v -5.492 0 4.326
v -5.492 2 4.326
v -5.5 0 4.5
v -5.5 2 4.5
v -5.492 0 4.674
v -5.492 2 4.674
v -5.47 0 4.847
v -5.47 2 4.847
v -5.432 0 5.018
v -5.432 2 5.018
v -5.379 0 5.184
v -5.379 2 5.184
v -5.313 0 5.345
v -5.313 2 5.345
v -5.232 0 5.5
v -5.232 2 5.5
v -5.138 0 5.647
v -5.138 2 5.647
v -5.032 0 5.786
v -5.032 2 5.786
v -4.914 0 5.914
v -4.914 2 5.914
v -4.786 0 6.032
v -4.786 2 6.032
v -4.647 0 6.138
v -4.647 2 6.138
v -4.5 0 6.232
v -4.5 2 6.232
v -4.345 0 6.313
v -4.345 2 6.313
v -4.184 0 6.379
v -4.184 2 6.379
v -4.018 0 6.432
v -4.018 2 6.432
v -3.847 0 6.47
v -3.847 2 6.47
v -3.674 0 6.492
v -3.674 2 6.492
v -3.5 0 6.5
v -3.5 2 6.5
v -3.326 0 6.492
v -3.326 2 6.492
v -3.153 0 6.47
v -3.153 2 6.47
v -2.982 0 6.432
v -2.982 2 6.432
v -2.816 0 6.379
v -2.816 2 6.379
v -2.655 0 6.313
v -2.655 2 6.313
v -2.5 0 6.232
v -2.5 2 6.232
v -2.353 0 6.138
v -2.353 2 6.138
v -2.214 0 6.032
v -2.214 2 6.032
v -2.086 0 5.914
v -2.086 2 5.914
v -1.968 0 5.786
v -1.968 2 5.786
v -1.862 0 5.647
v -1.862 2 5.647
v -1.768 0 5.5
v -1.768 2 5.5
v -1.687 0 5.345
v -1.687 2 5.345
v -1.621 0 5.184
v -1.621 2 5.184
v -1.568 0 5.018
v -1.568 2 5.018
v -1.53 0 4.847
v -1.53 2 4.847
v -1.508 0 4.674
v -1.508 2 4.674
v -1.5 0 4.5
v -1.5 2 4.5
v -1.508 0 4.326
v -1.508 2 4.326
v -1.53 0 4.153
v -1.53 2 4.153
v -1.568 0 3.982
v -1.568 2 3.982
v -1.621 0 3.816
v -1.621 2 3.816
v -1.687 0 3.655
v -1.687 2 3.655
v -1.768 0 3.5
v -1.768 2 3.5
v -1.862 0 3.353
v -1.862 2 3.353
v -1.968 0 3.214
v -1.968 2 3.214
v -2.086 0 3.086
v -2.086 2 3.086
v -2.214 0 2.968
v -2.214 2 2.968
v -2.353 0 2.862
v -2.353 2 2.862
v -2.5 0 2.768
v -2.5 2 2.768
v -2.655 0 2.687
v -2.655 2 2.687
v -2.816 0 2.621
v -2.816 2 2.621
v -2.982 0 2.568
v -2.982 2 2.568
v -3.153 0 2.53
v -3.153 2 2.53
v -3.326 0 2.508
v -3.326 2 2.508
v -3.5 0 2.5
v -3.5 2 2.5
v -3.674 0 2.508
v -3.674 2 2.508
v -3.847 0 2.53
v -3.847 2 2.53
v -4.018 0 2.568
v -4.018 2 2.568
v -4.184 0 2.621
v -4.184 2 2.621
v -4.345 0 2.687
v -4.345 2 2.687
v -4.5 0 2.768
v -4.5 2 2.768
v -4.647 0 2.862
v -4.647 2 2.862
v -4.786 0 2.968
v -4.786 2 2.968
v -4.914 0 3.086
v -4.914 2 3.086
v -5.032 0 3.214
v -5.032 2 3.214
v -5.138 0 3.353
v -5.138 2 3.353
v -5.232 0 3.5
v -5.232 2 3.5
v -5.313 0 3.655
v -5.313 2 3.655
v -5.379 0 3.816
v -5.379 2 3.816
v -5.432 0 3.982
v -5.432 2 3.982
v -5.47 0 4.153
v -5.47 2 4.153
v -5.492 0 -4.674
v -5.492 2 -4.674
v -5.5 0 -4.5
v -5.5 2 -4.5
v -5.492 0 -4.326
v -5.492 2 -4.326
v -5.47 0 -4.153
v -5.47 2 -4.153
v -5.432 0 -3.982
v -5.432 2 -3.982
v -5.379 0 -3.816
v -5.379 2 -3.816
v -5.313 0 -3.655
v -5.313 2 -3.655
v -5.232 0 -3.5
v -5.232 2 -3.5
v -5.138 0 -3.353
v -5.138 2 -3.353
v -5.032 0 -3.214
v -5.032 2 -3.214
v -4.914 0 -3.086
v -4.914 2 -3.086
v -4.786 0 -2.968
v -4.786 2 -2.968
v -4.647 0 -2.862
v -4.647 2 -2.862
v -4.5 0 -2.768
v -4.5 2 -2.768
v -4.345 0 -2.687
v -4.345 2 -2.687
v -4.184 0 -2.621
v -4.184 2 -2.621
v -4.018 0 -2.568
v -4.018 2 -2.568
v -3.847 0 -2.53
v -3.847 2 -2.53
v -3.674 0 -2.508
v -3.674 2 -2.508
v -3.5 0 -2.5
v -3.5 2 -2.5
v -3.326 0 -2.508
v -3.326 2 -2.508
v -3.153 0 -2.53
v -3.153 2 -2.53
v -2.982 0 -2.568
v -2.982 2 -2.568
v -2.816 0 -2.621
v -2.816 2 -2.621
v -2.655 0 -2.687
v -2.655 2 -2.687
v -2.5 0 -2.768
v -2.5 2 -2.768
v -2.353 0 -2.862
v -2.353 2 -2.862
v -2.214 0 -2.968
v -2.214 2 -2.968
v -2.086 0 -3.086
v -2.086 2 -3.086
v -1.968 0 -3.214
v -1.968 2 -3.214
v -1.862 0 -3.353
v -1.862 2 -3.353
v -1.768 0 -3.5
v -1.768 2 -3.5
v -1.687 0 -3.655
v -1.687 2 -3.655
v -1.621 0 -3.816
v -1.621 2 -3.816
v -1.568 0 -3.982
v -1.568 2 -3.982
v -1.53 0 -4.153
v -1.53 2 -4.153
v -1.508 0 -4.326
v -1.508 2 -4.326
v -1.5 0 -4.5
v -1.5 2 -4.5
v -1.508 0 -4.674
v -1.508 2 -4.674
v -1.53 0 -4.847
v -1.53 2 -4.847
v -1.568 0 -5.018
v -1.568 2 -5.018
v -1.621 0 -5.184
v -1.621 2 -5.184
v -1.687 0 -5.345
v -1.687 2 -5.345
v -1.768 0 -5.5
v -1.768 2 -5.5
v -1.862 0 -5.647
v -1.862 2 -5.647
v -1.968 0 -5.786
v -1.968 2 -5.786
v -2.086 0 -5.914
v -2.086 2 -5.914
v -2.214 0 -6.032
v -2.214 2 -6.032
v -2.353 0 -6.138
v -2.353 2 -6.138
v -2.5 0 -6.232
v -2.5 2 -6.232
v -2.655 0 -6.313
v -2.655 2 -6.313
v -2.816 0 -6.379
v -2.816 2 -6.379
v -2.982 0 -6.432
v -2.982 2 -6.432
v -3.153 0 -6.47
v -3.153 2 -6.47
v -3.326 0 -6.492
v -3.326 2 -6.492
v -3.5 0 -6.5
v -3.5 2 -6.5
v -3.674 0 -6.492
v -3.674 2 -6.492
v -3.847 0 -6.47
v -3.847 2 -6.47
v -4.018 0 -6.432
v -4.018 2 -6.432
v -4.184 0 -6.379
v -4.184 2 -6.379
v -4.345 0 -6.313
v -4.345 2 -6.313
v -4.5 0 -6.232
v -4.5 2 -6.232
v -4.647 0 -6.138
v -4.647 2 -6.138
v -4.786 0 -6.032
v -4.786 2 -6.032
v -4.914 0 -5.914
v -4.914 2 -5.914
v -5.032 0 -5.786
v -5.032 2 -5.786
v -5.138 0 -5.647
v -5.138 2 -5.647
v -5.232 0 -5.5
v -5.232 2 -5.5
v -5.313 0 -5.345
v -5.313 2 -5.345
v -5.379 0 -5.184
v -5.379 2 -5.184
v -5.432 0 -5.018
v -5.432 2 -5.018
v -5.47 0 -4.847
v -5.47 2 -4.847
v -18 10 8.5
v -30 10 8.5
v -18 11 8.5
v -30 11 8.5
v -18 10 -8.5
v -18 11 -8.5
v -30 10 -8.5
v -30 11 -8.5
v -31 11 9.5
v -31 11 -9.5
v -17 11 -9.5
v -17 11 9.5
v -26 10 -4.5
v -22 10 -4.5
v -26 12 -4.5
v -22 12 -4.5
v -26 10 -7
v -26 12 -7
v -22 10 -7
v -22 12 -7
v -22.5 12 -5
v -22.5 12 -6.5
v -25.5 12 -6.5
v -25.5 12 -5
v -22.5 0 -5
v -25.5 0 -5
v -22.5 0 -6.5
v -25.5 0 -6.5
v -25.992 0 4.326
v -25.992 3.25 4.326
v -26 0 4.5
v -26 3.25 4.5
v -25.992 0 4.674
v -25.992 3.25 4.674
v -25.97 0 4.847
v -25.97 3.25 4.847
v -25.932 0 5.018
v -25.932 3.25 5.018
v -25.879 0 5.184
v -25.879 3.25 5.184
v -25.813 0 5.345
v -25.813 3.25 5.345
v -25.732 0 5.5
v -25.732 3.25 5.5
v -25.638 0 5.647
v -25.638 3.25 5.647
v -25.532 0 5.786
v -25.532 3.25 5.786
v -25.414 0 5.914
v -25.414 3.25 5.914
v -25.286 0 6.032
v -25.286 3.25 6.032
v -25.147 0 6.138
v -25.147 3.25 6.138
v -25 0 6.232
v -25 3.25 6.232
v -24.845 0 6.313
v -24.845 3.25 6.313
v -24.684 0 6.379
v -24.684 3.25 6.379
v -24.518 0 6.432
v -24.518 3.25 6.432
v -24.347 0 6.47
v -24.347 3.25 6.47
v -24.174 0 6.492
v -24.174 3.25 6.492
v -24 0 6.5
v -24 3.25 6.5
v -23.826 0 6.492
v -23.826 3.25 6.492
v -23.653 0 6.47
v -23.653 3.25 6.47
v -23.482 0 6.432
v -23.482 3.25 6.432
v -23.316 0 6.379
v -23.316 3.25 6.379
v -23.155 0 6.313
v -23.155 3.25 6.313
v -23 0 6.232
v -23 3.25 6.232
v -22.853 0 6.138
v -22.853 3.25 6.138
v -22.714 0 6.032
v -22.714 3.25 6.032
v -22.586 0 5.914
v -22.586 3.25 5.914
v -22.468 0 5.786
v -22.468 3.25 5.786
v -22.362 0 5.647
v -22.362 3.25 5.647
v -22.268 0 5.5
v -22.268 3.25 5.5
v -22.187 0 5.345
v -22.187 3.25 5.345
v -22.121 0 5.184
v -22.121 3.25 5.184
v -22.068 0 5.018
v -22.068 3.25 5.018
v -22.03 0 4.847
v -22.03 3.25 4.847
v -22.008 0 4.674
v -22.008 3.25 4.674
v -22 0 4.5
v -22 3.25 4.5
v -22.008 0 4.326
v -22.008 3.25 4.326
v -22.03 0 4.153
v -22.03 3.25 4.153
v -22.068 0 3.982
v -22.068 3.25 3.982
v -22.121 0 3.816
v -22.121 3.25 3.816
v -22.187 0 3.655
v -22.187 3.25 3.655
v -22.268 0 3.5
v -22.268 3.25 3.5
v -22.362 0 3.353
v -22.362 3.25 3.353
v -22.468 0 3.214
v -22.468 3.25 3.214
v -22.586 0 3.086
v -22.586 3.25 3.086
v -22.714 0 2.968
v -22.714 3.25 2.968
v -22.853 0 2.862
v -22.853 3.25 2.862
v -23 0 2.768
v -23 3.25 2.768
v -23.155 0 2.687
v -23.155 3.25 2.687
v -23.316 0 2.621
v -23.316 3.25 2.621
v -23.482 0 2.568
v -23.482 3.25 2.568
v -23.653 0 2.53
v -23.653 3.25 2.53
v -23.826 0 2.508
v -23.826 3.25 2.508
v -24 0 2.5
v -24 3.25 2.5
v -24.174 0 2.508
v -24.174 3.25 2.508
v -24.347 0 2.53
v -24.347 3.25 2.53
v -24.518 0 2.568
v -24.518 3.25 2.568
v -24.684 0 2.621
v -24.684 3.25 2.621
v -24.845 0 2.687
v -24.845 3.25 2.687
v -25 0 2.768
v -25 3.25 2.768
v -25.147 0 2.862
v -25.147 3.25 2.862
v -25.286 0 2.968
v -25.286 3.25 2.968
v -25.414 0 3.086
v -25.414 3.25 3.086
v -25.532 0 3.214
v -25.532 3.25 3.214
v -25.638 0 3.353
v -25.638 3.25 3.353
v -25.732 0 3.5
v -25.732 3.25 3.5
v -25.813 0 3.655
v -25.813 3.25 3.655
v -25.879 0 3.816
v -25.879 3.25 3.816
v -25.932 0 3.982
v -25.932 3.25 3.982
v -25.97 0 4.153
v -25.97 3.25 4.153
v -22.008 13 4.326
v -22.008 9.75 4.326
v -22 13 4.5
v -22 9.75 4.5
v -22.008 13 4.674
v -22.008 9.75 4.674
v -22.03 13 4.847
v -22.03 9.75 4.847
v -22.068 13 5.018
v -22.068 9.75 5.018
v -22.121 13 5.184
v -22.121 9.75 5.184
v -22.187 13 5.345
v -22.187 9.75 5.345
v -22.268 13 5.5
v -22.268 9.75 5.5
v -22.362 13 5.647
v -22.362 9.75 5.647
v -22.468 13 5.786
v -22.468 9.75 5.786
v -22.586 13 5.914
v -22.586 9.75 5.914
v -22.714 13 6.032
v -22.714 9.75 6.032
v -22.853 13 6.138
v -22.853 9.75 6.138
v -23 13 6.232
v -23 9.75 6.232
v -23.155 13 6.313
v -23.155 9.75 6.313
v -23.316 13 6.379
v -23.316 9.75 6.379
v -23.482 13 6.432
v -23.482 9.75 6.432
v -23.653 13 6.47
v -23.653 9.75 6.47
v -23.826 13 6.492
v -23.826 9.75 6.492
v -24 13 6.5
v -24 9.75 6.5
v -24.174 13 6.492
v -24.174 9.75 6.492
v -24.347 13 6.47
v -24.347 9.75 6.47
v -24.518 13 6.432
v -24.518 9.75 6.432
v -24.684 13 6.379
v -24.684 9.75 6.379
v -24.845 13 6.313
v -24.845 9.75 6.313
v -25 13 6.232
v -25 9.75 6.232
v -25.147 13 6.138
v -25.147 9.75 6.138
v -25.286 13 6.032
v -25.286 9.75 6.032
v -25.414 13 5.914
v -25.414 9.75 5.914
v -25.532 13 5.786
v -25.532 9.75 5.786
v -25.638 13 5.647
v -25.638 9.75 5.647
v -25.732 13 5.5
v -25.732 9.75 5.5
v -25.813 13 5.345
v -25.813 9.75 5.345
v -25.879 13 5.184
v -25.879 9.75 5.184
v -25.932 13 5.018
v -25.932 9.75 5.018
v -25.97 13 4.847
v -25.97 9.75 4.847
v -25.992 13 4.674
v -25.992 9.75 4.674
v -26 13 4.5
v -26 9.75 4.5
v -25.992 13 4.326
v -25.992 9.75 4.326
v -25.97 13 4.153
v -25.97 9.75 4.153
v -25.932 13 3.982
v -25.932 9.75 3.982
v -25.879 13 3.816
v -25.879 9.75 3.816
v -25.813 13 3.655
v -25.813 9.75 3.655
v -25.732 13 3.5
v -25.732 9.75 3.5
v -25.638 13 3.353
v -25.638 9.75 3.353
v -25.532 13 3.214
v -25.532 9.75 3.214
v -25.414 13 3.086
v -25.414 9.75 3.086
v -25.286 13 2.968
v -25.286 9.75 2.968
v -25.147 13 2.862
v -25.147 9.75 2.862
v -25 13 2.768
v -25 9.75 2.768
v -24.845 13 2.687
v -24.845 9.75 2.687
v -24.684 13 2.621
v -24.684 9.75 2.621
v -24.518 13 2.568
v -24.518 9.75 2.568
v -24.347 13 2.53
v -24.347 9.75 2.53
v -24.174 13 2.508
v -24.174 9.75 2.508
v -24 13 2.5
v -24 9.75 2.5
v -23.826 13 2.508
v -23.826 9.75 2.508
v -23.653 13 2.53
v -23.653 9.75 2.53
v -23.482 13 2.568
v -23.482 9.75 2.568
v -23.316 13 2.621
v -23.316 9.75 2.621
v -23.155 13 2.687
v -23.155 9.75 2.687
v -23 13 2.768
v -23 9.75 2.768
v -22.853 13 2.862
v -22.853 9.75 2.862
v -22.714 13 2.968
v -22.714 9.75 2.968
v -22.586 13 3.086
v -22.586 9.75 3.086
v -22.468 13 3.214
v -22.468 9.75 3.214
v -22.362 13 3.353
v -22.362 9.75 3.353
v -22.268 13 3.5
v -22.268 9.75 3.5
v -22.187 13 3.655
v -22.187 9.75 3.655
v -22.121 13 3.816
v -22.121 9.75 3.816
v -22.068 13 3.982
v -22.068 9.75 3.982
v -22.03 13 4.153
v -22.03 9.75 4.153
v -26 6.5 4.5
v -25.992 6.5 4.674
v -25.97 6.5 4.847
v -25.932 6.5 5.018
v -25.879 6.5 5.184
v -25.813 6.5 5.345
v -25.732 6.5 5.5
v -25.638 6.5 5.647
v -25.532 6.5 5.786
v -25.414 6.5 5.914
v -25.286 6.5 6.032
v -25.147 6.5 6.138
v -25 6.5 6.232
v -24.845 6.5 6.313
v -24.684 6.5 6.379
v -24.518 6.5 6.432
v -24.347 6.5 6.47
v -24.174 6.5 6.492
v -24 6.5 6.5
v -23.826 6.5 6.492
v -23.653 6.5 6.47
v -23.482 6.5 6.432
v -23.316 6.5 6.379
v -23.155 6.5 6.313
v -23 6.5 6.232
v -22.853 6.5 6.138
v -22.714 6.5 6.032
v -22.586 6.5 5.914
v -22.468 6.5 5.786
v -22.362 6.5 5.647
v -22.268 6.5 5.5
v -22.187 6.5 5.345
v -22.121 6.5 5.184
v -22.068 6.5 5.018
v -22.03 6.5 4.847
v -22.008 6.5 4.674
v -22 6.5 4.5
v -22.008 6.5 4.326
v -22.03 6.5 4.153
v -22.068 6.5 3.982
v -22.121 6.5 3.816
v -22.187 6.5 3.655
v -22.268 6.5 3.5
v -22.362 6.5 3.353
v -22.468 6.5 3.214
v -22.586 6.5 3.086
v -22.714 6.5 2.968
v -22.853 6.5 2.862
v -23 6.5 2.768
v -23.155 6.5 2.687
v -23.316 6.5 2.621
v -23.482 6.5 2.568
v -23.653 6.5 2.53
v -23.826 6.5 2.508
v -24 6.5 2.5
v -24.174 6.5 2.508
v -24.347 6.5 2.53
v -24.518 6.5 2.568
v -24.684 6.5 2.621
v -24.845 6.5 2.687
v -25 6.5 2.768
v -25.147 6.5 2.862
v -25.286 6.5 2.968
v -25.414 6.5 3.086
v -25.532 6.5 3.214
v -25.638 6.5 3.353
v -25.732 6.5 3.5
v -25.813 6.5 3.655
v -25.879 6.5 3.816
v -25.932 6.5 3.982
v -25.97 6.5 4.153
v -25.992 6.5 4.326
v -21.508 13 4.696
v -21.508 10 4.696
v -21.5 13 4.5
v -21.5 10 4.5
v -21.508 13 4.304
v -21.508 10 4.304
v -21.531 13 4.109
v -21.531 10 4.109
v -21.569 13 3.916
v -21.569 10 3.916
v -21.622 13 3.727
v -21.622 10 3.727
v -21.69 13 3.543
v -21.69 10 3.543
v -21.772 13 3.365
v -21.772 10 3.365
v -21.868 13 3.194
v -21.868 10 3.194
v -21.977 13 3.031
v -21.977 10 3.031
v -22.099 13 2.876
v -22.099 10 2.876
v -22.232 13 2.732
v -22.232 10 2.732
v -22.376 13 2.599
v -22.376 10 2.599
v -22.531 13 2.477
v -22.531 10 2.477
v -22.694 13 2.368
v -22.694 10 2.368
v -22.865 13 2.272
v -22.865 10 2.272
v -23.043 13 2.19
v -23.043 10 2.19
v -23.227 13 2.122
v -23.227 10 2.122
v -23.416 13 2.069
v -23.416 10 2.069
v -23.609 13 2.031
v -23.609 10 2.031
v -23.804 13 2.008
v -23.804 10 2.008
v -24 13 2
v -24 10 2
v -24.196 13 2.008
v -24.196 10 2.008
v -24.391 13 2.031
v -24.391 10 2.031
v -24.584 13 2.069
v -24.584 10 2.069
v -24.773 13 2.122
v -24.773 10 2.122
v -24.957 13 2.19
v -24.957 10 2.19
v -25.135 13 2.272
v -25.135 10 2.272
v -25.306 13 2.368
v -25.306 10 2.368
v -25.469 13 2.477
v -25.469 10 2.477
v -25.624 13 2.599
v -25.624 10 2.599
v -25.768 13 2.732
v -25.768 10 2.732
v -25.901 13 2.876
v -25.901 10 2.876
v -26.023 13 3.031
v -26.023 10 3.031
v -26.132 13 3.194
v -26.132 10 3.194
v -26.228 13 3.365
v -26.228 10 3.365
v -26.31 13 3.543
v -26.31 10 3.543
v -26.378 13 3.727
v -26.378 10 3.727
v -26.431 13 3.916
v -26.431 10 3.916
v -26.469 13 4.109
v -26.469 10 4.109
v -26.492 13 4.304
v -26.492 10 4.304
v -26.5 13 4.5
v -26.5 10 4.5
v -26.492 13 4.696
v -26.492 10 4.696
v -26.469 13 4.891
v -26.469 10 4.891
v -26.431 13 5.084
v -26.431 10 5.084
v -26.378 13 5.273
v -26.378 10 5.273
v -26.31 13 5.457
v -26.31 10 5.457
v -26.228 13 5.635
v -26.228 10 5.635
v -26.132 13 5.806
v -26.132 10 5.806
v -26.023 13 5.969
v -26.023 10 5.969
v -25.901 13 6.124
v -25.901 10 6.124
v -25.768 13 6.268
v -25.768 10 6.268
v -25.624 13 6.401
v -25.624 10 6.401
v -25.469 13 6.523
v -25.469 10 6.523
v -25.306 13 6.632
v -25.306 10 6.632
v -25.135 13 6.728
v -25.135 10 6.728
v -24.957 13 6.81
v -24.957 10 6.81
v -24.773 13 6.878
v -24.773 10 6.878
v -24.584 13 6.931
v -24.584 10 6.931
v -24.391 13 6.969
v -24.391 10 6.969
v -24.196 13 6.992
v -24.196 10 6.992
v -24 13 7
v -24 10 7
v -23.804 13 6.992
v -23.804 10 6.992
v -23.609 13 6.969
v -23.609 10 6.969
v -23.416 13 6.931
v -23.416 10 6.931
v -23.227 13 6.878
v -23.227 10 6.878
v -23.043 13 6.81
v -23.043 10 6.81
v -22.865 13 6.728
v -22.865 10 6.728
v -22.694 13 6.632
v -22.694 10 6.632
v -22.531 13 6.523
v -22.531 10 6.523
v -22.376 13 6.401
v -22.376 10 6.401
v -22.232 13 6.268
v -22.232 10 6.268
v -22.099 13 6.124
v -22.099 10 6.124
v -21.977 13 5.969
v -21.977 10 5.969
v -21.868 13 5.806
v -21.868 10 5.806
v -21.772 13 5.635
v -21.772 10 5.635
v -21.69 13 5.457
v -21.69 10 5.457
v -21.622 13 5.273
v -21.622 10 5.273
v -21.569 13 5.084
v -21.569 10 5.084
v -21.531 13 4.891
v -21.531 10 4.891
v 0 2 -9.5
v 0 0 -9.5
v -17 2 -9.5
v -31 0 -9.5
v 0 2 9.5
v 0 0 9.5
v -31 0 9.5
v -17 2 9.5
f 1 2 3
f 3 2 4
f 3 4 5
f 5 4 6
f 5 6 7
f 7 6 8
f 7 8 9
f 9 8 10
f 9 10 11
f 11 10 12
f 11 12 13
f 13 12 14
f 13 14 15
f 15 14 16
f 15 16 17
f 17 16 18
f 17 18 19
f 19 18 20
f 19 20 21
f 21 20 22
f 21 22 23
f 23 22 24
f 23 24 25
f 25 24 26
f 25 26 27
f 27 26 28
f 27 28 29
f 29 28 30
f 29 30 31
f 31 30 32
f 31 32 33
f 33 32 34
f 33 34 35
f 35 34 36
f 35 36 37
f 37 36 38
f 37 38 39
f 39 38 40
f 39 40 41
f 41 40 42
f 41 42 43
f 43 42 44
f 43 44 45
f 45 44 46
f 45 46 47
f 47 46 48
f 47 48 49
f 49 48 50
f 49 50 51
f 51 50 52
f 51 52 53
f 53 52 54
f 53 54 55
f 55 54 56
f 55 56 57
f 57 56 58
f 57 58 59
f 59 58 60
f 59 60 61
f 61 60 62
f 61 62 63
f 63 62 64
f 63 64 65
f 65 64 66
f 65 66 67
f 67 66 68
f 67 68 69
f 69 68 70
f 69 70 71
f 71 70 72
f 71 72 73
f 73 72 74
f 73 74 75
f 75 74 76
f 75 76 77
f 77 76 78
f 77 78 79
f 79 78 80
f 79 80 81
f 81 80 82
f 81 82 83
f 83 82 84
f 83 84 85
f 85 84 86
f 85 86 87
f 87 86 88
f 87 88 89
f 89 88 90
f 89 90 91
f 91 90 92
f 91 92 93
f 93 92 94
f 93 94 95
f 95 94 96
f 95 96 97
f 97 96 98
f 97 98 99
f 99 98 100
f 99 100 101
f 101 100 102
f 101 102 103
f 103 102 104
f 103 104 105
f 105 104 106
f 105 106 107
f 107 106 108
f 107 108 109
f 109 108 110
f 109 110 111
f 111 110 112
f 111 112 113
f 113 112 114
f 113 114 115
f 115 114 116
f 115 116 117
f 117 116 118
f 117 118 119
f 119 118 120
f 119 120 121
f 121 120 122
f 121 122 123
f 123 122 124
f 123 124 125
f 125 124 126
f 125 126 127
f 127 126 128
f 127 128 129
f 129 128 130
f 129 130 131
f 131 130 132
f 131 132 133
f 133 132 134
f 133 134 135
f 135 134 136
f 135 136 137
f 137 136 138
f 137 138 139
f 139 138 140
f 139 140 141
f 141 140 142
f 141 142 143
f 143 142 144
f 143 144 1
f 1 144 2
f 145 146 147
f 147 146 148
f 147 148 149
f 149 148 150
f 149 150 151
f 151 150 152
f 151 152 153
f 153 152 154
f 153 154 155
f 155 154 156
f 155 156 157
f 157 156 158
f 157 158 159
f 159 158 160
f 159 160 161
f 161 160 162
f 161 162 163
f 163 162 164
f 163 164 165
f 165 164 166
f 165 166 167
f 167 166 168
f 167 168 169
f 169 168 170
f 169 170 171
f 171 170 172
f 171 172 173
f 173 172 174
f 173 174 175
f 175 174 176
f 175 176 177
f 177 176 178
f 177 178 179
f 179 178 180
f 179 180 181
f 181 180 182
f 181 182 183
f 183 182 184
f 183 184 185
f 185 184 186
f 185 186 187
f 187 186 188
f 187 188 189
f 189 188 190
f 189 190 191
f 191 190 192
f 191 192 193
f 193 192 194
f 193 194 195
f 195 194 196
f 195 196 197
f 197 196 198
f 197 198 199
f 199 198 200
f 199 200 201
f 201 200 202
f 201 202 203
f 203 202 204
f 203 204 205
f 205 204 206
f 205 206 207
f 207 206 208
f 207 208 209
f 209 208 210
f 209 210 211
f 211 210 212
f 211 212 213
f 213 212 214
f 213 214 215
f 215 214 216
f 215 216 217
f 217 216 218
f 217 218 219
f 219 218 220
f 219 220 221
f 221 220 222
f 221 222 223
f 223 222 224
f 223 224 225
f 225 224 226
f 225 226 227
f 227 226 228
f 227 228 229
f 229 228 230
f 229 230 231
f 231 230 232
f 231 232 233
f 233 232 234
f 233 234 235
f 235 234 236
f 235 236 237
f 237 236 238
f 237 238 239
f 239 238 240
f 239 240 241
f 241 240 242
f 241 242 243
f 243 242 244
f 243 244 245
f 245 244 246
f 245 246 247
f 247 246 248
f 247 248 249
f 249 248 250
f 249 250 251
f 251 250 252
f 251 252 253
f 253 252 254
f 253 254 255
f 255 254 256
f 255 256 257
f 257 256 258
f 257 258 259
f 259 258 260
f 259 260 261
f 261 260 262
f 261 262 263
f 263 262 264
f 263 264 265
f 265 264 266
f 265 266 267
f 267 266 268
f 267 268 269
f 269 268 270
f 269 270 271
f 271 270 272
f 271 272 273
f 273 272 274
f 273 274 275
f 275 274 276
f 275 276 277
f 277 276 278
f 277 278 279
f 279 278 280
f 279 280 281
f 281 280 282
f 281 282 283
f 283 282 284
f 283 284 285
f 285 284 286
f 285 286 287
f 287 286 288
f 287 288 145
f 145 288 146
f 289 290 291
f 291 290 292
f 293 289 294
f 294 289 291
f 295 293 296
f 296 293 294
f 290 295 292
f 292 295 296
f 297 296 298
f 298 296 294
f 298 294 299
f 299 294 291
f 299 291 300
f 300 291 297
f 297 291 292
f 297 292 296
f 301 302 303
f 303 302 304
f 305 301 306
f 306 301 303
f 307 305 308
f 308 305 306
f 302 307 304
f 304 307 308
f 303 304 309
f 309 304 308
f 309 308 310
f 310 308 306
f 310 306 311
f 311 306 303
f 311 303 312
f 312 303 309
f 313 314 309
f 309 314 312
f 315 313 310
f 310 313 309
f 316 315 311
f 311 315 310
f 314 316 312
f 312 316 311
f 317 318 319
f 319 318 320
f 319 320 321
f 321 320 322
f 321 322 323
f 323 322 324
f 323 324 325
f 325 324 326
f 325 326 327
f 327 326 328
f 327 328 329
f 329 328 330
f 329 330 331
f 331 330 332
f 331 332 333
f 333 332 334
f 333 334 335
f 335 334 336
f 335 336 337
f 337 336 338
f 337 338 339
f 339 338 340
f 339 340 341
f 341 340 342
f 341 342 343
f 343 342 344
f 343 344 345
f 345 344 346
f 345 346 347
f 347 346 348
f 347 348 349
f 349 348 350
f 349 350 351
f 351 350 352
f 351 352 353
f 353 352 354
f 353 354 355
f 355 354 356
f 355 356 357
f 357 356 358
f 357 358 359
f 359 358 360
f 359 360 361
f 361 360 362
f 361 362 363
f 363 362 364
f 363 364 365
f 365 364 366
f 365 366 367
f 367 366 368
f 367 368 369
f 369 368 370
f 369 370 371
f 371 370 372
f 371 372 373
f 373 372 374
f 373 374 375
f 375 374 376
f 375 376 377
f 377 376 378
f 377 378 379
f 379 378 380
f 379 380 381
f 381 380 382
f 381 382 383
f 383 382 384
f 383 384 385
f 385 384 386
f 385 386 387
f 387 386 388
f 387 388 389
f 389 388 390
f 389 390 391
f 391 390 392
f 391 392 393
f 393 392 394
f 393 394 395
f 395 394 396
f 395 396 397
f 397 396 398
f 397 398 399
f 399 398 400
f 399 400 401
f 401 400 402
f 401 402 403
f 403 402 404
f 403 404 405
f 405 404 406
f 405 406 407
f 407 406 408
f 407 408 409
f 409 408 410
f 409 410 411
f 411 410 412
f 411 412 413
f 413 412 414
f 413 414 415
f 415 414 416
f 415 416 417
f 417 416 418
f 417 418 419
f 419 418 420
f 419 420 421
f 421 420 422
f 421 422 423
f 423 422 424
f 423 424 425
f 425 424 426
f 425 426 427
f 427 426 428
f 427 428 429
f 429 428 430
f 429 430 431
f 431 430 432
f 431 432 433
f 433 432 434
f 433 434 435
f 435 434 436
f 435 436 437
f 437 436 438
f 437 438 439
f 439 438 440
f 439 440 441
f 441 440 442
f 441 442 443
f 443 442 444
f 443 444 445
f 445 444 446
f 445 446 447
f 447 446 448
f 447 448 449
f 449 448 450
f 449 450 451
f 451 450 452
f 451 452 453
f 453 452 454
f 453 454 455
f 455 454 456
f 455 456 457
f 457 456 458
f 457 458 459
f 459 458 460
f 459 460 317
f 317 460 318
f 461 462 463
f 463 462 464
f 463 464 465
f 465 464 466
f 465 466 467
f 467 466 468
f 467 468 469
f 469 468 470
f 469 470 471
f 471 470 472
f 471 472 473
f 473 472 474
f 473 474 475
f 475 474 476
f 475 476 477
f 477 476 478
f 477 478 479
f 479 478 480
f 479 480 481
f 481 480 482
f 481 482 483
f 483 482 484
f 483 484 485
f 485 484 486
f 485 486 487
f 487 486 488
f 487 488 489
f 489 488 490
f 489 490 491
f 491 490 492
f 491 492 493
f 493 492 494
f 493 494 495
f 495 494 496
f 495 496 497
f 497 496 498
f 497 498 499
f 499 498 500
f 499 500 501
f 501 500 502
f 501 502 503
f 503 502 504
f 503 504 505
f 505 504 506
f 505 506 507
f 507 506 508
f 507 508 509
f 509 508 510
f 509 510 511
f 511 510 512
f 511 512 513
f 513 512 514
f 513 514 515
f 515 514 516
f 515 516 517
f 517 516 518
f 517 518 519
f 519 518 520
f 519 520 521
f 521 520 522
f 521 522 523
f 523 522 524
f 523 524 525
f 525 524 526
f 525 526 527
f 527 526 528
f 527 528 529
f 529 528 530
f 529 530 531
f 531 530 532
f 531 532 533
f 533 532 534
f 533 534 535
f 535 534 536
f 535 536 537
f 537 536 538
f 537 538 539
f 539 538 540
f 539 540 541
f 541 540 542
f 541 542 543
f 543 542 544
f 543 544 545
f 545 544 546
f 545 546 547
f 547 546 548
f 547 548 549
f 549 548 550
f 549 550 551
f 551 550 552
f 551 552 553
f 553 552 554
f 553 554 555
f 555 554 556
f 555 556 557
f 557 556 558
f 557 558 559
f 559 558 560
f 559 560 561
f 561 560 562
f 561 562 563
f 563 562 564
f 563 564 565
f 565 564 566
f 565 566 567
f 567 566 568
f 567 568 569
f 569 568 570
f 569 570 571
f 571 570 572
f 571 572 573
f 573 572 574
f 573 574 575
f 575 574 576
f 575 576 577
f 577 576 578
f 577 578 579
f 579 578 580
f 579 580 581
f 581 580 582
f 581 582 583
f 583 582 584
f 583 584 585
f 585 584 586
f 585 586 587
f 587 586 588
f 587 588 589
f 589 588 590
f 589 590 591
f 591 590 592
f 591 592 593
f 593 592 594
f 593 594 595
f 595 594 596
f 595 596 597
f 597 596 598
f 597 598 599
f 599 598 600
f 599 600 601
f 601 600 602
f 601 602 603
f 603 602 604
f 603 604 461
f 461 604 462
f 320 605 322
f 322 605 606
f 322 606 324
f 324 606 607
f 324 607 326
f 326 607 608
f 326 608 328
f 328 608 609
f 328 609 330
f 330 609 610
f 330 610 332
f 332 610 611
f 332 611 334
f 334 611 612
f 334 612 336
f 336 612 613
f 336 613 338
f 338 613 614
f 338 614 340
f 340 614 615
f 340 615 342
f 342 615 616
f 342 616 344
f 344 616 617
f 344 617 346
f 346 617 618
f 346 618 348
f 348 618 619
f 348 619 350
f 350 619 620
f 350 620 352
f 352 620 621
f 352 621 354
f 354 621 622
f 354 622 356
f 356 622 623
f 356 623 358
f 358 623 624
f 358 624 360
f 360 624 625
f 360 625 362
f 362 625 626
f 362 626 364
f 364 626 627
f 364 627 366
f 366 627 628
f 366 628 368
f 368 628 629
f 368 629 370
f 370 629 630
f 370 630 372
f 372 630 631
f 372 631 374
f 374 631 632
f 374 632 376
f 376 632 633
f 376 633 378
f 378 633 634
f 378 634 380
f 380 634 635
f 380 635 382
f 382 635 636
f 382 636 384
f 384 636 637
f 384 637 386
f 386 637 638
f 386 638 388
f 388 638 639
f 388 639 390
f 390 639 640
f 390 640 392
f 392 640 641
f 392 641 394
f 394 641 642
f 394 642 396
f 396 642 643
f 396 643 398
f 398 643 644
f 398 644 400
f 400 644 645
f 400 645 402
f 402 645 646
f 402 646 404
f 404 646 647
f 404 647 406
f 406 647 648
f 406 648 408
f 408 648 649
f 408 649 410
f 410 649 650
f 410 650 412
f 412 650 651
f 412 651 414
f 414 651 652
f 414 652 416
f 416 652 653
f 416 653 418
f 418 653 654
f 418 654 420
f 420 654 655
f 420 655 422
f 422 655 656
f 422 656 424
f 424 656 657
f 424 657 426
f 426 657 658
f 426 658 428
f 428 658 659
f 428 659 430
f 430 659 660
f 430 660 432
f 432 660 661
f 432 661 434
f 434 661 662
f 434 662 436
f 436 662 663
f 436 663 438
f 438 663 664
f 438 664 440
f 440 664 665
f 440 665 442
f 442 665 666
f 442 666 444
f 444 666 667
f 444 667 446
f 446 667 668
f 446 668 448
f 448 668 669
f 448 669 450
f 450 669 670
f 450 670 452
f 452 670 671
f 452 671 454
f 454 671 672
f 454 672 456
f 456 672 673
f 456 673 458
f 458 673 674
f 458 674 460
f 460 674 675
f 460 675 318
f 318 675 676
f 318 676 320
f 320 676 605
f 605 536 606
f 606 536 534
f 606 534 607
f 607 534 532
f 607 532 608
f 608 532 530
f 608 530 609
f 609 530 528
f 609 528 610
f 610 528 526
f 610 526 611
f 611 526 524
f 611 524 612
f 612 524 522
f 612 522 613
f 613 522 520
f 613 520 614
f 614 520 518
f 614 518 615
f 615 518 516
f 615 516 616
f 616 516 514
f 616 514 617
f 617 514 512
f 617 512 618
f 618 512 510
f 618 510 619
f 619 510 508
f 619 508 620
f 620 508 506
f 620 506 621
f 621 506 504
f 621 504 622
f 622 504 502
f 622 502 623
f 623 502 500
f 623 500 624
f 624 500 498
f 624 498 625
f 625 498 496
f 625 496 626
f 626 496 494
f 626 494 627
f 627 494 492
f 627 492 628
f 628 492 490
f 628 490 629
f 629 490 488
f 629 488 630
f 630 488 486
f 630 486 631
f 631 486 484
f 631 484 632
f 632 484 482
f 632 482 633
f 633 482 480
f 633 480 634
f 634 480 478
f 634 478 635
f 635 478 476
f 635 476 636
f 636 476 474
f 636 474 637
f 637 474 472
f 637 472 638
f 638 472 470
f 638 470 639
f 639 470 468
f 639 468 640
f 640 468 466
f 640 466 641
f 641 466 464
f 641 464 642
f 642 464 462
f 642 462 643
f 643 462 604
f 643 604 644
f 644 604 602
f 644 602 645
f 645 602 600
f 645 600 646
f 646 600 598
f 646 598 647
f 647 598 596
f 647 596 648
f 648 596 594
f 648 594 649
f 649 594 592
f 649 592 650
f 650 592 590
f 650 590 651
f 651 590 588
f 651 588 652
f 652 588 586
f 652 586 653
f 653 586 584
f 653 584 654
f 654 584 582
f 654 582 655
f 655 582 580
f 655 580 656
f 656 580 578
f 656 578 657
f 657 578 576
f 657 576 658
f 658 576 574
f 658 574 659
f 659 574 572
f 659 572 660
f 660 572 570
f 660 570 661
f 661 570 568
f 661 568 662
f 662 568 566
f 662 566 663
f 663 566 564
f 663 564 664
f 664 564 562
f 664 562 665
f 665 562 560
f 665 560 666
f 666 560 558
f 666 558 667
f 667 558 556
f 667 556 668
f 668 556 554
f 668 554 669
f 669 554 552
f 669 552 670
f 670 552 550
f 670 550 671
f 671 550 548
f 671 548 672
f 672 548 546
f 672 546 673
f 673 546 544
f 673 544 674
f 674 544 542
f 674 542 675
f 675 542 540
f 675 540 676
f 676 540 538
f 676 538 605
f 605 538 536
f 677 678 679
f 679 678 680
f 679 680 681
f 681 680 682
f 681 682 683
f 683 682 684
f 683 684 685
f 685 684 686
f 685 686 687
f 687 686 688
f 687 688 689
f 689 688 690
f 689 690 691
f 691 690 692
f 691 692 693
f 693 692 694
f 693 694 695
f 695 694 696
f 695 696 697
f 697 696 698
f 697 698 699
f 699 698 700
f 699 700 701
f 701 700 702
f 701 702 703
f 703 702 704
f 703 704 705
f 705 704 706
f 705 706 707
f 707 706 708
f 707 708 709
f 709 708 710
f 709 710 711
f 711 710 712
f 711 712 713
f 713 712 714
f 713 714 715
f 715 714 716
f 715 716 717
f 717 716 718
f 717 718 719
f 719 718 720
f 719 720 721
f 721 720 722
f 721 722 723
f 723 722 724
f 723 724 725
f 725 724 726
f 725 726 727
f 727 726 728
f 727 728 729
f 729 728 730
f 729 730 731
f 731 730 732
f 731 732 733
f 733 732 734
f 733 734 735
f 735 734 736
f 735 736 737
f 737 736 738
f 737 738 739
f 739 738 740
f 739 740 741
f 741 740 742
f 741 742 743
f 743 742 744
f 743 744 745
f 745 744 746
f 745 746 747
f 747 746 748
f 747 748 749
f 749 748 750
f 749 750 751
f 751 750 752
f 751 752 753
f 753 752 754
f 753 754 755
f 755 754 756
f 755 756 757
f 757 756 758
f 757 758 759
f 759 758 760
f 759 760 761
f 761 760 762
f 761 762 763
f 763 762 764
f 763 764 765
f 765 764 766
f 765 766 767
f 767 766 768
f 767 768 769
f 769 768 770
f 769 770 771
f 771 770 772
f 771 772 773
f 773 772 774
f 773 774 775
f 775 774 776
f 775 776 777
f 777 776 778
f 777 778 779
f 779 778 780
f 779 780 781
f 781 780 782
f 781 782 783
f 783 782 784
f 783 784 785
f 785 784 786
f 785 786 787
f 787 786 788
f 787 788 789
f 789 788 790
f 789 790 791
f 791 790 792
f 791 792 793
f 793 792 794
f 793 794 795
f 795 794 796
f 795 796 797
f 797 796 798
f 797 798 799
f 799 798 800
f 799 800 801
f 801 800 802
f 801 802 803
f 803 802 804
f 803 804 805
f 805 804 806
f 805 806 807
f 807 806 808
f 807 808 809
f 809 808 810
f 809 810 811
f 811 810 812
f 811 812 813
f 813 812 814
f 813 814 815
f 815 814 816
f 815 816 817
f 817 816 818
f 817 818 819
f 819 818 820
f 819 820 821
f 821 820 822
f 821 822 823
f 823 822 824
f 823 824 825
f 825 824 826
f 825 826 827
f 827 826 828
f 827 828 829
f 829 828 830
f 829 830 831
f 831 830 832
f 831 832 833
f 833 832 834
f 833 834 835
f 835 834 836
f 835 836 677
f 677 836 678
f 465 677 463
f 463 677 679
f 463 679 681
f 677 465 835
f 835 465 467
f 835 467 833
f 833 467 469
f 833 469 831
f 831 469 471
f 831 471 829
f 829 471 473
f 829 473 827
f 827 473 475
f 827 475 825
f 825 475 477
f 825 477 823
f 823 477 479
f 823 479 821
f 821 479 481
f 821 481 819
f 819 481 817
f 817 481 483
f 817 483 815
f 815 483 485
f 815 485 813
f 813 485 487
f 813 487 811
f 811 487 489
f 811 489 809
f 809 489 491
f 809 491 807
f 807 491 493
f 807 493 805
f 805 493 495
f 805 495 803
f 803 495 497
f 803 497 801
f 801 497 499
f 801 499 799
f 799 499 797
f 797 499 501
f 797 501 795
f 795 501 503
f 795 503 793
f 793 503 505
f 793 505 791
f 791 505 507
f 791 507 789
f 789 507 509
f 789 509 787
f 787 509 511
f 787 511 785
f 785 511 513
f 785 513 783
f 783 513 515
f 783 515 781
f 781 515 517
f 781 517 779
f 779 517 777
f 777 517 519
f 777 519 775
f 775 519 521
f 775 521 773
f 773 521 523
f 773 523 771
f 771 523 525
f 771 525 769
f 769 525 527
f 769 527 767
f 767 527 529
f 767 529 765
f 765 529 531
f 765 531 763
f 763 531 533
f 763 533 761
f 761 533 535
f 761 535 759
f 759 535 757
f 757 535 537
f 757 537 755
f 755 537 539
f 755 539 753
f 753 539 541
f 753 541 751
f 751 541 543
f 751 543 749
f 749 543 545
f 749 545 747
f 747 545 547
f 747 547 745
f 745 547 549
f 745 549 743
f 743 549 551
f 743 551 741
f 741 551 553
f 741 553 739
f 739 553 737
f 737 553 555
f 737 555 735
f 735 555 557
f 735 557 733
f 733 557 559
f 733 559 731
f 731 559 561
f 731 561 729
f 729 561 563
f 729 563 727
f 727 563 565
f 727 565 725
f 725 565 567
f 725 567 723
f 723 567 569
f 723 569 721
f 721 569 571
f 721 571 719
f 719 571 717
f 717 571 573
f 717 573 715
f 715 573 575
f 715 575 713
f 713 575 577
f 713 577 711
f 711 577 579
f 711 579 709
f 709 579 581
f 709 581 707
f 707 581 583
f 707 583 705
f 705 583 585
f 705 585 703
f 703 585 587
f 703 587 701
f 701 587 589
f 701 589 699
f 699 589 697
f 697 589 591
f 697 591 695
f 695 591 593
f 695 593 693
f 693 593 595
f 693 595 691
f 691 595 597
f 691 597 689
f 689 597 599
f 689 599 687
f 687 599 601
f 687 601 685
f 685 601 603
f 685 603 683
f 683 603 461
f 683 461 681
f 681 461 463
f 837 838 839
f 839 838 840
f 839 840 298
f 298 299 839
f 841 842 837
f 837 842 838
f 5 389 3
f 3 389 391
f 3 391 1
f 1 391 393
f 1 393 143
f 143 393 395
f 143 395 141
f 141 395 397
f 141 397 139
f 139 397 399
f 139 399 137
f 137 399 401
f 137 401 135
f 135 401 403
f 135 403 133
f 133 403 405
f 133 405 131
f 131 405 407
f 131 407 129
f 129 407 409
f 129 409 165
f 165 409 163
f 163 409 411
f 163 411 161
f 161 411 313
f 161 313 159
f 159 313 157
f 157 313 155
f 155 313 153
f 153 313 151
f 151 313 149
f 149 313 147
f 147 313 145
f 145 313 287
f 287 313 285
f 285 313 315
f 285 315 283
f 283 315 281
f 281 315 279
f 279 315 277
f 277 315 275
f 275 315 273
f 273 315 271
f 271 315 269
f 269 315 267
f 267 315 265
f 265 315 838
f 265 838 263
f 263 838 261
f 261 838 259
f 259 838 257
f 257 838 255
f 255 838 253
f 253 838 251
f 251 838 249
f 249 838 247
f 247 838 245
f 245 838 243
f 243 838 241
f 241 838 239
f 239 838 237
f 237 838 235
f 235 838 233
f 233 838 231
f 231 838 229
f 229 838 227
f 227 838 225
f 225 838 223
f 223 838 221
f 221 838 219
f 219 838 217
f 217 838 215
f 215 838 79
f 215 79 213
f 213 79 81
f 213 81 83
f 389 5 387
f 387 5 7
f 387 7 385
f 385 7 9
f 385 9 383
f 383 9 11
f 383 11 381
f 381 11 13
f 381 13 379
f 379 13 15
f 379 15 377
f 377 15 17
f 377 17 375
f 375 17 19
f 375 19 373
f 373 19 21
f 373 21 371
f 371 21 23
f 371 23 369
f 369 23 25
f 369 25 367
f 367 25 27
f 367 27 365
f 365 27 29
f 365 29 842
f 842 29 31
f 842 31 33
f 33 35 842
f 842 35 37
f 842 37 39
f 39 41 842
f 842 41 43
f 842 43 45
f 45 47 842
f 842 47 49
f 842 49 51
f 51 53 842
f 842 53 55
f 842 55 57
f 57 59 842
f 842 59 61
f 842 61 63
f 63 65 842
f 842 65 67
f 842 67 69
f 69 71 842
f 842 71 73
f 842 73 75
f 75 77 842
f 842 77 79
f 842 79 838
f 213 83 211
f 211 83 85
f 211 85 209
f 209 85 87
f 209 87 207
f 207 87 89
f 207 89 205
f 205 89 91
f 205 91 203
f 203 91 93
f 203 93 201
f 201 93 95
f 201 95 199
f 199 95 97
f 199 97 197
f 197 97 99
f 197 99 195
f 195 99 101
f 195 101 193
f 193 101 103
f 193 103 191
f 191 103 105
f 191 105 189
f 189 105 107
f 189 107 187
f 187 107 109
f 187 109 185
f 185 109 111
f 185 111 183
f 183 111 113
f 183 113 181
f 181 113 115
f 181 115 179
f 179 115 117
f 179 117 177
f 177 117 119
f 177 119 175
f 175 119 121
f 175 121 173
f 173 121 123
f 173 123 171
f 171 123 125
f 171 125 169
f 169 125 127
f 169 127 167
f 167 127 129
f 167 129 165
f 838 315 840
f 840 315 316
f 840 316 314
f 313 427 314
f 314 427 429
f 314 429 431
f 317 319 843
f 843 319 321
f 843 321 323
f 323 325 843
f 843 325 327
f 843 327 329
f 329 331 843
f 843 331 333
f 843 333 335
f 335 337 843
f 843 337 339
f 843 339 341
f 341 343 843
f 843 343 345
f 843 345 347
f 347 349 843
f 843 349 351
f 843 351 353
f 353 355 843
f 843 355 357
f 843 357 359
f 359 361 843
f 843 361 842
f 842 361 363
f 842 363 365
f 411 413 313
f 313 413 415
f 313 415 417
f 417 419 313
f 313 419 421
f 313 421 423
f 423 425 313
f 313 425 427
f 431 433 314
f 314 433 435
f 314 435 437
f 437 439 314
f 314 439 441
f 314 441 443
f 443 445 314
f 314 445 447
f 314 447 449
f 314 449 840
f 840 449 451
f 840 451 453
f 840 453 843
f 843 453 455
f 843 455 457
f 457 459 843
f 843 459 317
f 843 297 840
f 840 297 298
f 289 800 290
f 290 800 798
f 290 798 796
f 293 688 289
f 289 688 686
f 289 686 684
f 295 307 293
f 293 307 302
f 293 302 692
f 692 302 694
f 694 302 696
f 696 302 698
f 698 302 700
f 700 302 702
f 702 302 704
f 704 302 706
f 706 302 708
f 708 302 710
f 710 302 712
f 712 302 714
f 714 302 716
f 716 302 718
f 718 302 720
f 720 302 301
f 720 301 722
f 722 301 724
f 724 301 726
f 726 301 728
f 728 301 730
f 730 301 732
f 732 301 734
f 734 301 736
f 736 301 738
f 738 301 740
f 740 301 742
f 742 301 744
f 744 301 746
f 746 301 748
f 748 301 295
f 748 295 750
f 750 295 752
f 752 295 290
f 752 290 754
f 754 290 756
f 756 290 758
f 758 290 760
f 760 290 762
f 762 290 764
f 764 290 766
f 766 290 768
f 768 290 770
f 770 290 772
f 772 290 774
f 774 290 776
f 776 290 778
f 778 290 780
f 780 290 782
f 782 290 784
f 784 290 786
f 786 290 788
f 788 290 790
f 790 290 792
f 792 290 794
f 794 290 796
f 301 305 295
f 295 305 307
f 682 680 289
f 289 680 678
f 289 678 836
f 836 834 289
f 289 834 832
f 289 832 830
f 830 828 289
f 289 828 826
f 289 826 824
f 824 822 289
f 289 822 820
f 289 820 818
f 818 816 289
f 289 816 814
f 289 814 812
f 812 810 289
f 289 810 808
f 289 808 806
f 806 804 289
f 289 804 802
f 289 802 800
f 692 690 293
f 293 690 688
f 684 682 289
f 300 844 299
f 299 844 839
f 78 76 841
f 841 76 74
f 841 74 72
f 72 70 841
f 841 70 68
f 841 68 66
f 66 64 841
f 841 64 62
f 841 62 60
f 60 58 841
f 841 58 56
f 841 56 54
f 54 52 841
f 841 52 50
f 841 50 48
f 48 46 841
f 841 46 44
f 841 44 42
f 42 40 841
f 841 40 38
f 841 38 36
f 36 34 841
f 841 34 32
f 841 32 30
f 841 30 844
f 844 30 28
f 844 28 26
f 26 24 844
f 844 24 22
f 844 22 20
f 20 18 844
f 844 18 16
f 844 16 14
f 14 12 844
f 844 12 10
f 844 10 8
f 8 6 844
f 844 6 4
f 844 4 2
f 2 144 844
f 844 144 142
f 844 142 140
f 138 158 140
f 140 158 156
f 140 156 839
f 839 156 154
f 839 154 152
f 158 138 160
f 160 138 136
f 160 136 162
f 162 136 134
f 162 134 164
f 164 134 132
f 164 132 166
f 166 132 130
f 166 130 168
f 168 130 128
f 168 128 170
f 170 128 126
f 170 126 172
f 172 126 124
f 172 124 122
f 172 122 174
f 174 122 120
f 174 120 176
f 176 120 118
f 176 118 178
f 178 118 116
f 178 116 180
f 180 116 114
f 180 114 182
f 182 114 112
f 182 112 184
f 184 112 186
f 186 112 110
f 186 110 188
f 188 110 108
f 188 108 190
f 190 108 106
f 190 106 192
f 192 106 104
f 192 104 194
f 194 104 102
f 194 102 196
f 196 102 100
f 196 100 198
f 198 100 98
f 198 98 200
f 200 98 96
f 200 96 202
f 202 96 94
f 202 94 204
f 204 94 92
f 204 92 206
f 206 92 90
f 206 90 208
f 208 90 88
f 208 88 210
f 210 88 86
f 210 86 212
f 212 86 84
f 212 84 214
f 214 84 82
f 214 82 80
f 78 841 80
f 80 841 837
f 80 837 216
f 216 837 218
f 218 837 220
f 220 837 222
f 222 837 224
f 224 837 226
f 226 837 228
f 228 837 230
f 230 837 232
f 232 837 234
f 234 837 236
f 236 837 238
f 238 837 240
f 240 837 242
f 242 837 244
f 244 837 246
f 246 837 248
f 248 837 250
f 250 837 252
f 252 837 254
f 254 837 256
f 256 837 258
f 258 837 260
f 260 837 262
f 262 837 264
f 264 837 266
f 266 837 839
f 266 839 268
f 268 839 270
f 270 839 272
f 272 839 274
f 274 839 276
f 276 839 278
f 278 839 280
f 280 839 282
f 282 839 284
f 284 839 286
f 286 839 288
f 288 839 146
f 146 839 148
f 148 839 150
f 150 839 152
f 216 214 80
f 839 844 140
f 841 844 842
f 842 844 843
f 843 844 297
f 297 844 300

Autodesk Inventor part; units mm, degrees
ref_plane "YZ Plane" through (0, 0, 0) normal (1, 0, 0) x (0, 1, 0)
ref_plane "XZ Plane" through (0, 0, 0) normal (0, 1, 0) x (-1, 0, 0)
ref_plane "XY Plane" through (0, 0, 0) normal (0, 0, 1) x (1, 0, 0)
sketch "Skizze1" plane through (0, 0, 0) normal (0, 0, 1) x (1, 0, 0)
  line L0 (0, 0) -> (0, 2)
  line L1 (0, 2) -> (-17, 2)
  line L2 (-17, 2) -> (-17, 10)
  line L3 (-17, 10) -> (-31, 10)
  line L4 (-31, 10) -> (-31, 0)
  line L5 (-31, 0) -> (0, 0)
  dimension "d0" = 17
  dimension "d1" = 2
  dimension "d2" = 14
  dimension "d3" = 10
extrude "Extrusion1" add sketch "Skizze1" along normal mid plane 19
sketch "Skizze2" plane through (-31, 10, 9.5) normal (0, 1, 0) x (1, 0, 0)
  circle A0 centre (7, 5) radius 2.5
  line L0 (14, 0) -> (0, 0) projected
  point P0 (31, 9.5)
  point P1 (7, 0)
  dimension "d6" = 5
  dimension "d7" = 5
extrude "Extrusion2" add sketch "Skizze2" along normal blind 3
sketch "Skizze3" plane through (-24, 13, 4.5) normal (0, 1, 0) x (1, 0, 0)
  circle A0 centre (0, 0) radius 2
  point P0 (24, 4.5)
  dimension "d10" = 4
extrude "Extrusion3" cut sketch "Skizze3" against normal through all
sketch "Skizze4" plane through (-31, 10, 9.5) normal (0, 1, 0) x (1, 0, 0)
  line L0 (5.5, 14.5) -> (8.5, 14.5)
  line L1 (8.5, 14.5) -> (8.5, 16)
  line L2 (8.5, 16) -> (5.5, 16)
  line L3 (5.5, 16) -> (5.5, 14.5)
  line L4 (0, 19) -> (14, 19) projected
  point P0 (31, 9.5)
  point P1 (7, 16)
  point P2 (7, 19)
  dimension "d13" = 1.5
  dimension "d14" = 3
  dimension "d15" = 3
extrude "Extrusion4" cut sketch "Skizze4" against normal through all
sketch "Skizze5" plane through (-31, 10, 9.5) normal (0, 1, 0) x (1, 0, 0)
  line L0 (5.5, 16) -> (8.5, 16) projected
  line L1 (5, 14) -> (9, 14)
  line L2 (9, 14) -> (9, 16.5)
  line L3 (9, 16.5) -> (5, 16.5)
  line L4 (5, 16.5) -> (5, 14)
  line L5 (5.5, 14.5) -> (5.5, 16) projected
  line L6 (8.5, 16) -> (8.5, 14.5) projected
  line L7 (8.5, 14.5) -> (5.5, 14.5) projected
  point P0 (31, 9.5)
  point P1 (5, 15.25)
  point P2 (5.5, 15.25)
  point P3 (7, 14)
  point P4 (7, 16)
  dimension "d18" = 0.5
  dimension "d19" = 0.5
extrude "Extrusion5" add sketch "Skizze5" along normal blind 2
sketch "Skizze6" plane through (-31, 10, 9.5) normal (0, 1, 0) x (1, 0, 0)
  line L0 (0, 19) -> (0, 0) projected
  line L1 (0, 19) -> (14, 19) projected
  line L2 (14, 19) -> (14, 0) projected
  line L3 (14, 0) -> (0, 0) projected
  line L4 (1, 1) -> (13, 1)
  line L5 (13, 1) -> (13, 18)
  line L6 (13, 18) -> (1, 18)
  line L7 (1, 18) -> (1, 1)
  point P0 (31, 9.5)
  point P1 (1, 9.5)
  point P2 (0, 9.5)
  point P3 (7, 18)
  point P4 (7, 19)
  dimension "d22" = 1
  dimension "d23" = 1
extrude "Extrusion6" add sketch "Skizze6" along normal blind 1
sketch "Skizze7" plane through (-17, 2, 9.5) normal (0, 1, 0) x (1, 0, 0)
  line L0 (17, 19) -> (17, 0) projected
  line L1 (17, 19) -> (17, 14)
  line L2 (17, 14) -> (13.5, 14)
  line L3 (17, 0) -> (17, 5)
  line L4 (17, 5) -> (13.5, 5)
  point P0 (17, 9.5)
  dimension "d26" = 5
  dimension "d27" = 3.5
  dimension "d28" = 5
  dimension "d29" = 3.5
hole "Bohrung1" at (-3.5, 2, 4.5) at (-3.5, 2, -4.5) direction (0, -1, 0) diameter 4 depth 50 tip angle 118
properties part number "Deck_neu"
